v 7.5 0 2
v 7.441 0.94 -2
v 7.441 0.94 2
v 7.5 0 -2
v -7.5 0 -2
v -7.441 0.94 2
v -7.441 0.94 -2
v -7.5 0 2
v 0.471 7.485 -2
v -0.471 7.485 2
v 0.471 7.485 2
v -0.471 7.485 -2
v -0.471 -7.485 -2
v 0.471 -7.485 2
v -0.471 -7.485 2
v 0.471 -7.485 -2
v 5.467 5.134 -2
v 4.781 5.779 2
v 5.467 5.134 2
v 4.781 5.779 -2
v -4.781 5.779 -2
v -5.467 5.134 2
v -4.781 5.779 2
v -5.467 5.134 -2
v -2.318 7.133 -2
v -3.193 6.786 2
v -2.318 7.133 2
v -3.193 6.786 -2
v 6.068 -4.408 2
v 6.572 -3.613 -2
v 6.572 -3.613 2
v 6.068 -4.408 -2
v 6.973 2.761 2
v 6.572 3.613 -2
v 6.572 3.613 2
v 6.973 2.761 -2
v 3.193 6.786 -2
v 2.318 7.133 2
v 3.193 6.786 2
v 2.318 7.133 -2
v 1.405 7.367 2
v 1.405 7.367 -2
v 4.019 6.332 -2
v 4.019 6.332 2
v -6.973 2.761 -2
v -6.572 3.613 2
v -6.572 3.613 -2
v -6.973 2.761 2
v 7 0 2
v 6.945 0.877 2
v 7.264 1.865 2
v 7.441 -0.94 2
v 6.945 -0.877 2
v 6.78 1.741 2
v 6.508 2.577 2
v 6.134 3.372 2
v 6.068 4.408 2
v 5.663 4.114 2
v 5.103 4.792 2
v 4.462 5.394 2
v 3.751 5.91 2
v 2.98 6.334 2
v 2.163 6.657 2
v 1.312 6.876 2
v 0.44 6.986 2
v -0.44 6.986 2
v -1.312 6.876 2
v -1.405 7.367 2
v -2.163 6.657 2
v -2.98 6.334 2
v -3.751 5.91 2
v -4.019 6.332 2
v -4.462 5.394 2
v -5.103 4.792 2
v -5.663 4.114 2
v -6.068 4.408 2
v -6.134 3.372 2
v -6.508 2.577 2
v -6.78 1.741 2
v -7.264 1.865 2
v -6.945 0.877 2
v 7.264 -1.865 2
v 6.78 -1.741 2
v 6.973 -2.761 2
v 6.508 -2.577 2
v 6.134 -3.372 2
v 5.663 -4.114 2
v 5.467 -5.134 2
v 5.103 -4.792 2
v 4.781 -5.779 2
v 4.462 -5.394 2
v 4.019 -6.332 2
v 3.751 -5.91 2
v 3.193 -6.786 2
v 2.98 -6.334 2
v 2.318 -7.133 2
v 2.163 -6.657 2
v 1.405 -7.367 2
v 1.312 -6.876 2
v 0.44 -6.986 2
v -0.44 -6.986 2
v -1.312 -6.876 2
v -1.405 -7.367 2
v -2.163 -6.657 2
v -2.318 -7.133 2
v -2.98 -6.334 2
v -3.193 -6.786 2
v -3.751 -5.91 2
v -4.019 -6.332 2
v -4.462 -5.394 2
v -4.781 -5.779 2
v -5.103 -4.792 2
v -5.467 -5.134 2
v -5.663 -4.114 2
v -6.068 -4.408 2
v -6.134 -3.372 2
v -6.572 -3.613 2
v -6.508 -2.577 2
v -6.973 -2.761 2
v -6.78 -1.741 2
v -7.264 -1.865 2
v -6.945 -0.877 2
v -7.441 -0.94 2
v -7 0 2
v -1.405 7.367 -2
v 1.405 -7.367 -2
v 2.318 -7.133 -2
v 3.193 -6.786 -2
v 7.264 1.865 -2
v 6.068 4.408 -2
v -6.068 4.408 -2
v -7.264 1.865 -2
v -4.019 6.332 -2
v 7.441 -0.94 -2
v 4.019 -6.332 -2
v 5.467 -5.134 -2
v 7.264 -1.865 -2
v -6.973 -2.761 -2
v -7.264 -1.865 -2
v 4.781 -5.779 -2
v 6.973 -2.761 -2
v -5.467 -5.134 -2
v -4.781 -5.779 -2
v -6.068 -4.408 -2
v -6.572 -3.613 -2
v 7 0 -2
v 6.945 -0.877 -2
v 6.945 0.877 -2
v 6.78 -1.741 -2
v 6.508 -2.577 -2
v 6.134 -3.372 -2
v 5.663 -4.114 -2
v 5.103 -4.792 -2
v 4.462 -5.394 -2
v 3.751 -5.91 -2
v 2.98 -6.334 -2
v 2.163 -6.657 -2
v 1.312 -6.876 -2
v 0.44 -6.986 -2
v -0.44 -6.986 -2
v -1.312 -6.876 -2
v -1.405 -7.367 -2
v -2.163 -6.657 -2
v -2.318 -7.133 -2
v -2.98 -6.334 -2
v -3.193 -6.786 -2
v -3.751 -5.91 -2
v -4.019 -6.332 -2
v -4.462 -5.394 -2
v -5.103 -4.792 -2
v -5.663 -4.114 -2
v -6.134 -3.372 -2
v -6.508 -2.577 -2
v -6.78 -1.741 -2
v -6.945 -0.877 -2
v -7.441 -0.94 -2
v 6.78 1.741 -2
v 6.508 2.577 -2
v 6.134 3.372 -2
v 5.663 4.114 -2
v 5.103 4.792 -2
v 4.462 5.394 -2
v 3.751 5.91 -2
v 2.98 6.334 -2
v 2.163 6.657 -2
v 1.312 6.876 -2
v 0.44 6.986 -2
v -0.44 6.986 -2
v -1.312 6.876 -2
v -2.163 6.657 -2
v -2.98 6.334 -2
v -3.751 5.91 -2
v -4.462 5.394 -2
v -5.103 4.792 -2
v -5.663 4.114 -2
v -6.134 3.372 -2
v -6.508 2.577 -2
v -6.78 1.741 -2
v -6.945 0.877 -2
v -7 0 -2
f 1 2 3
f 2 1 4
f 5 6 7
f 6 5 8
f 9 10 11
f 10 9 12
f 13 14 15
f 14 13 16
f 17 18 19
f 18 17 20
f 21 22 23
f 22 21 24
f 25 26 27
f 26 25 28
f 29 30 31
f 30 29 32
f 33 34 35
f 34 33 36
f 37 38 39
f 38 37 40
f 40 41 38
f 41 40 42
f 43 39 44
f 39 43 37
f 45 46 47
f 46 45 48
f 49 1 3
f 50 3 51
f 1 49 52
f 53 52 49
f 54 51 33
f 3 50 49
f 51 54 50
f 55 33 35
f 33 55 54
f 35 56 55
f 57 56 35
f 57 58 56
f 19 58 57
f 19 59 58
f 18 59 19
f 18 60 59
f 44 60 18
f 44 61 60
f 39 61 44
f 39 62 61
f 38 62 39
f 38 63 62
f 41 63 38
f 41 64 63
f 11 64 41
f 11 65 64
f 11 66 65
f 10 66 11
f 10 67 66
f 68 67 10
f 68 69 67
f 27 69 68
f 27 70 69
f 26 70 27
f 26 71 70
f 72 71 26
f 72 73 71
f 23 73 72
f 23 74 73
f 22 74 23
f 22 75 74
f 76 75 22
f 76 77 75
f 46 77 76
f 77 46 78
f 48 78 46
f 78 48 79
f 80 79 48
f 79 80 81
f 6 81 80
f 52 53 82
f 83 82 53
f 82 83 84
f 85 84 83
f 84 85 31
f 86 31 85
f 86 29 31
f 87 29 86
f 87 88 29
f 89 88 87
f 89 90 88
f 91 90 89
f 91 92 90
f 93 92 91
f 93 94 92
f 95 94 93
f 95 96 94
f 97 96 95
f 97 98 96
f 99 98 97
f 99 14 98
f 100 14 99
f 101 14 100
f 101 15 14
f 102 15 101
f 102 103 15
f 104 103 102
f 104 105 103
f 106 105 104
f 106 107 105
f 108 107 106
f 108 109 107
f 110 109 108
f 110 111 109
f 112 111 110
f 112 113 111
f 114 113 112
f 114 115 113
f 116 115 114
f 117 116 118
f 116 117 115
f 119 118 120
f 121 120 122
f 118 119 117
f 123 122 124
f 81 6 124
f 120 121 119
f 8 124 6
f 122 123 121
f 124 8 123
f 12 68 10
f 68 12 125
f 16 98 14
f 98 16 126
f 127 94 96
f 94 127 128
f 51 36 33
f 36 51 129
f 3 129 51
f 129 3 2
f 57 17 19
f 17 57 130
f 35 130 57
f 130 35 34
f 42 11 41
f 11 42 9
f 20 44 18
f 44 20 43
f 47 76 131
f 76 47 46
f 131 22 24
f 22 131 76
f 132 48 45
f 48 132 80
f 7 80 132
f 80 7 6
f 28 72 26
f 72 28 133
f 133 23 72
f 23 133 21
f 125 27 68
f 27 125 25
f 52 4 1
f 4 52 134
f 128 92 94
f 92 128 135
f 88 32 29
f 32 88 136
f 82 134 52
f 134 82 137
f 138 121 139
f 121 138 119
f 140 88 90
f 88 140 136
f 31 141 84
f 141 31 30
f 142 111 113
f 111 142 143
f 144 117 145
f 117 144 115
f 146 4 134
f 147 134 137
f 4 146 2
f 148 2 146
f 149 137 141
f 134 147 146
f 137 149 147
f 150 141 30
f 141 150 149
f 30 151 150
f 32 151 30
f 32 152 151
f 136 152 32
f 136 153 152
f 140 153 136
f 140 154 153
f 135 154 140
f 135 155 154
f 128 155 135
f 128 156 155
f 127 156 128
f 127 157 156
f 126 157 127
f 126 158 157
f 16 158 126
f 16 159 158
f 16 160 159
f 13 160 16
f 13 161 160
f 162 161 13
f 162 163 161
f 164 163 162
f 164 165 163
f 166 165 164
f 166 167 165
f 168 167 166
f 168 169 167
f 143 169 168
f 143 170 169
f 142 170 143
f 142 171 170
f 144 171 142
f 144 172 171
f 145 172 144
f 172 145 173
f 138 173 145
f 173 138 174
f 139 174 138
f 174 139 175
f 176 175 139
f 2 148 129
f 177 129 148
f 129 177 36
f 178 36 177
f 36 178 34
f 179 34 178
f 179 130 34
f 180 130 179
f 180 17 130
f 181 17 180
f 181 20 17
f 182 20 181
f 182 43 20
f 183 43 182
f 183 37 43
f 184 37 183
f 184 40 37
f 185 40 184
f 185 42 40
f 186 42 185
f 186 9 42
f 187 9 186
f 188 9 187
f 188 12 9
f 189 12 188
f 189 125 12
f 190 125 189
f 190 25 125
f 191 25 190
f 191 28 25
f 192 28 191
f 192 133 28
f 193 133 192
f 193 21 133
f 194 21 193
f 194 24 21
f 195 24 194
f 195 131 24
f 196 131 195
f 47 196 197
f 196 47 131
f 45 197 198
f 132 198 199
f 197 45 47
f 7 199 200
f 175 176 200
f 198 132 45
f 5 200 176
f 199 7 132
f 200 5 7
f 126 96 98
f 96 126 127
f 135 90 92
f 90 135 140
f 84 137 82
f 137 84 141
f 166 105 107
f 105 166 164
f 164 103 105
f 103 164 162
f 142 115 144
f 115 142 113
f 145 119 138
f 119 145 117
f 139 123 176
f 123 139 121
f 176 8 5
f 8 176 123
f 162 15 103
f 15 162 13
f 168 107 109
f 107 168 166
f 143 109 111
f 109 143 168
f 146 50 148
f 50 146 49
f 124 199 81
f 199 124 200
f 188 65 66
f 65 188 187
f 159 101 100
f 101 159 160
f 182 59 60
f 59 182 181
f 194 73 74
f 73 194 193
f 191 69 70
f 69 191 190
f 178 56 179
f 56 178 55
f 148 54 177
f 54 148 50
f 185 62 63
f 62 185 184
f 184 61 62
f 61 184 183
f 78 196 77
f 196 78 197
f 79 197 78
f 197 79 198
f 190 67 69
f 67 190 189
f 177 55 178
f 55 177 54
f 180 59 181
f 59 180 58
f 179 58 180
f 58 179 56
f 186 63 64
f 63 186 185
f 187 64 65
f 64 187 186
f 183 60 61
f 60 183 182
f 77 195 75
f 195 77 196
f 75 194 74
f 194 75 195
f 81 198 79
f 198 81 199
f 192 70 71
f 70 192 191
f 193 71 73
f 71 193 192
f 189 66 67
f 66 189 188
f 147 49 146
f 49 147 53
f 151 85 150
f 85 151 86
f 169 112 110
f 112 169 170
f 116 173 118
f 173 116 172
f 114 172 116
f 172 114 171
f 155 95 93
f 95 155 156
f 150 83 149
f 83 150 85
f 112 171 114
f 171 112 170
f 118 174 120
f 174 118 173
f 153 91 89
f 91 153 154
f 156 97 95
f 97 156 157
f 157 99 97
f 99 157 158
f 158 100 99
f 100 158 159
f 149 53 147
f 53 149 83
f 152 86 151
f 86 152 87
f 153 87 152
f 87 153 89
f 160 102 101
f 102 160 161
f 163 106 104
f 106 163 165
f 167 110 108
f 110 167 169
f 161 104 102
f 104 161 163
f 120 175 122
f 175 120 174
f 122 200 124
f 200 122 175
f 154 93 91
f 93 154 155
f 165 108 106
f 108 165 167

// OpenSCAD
$fn = 50;


difference() {
	union() {
		translate(v = [0, 0, -2.0000000000]) {
			cylinder(h = 4, r = 7.5000000000);
		}
	}
	union() {
		translate(v = [0, 0, -100.0000000000]) {
			cylinder(h = 200, r = 7);
		}
	}
}
